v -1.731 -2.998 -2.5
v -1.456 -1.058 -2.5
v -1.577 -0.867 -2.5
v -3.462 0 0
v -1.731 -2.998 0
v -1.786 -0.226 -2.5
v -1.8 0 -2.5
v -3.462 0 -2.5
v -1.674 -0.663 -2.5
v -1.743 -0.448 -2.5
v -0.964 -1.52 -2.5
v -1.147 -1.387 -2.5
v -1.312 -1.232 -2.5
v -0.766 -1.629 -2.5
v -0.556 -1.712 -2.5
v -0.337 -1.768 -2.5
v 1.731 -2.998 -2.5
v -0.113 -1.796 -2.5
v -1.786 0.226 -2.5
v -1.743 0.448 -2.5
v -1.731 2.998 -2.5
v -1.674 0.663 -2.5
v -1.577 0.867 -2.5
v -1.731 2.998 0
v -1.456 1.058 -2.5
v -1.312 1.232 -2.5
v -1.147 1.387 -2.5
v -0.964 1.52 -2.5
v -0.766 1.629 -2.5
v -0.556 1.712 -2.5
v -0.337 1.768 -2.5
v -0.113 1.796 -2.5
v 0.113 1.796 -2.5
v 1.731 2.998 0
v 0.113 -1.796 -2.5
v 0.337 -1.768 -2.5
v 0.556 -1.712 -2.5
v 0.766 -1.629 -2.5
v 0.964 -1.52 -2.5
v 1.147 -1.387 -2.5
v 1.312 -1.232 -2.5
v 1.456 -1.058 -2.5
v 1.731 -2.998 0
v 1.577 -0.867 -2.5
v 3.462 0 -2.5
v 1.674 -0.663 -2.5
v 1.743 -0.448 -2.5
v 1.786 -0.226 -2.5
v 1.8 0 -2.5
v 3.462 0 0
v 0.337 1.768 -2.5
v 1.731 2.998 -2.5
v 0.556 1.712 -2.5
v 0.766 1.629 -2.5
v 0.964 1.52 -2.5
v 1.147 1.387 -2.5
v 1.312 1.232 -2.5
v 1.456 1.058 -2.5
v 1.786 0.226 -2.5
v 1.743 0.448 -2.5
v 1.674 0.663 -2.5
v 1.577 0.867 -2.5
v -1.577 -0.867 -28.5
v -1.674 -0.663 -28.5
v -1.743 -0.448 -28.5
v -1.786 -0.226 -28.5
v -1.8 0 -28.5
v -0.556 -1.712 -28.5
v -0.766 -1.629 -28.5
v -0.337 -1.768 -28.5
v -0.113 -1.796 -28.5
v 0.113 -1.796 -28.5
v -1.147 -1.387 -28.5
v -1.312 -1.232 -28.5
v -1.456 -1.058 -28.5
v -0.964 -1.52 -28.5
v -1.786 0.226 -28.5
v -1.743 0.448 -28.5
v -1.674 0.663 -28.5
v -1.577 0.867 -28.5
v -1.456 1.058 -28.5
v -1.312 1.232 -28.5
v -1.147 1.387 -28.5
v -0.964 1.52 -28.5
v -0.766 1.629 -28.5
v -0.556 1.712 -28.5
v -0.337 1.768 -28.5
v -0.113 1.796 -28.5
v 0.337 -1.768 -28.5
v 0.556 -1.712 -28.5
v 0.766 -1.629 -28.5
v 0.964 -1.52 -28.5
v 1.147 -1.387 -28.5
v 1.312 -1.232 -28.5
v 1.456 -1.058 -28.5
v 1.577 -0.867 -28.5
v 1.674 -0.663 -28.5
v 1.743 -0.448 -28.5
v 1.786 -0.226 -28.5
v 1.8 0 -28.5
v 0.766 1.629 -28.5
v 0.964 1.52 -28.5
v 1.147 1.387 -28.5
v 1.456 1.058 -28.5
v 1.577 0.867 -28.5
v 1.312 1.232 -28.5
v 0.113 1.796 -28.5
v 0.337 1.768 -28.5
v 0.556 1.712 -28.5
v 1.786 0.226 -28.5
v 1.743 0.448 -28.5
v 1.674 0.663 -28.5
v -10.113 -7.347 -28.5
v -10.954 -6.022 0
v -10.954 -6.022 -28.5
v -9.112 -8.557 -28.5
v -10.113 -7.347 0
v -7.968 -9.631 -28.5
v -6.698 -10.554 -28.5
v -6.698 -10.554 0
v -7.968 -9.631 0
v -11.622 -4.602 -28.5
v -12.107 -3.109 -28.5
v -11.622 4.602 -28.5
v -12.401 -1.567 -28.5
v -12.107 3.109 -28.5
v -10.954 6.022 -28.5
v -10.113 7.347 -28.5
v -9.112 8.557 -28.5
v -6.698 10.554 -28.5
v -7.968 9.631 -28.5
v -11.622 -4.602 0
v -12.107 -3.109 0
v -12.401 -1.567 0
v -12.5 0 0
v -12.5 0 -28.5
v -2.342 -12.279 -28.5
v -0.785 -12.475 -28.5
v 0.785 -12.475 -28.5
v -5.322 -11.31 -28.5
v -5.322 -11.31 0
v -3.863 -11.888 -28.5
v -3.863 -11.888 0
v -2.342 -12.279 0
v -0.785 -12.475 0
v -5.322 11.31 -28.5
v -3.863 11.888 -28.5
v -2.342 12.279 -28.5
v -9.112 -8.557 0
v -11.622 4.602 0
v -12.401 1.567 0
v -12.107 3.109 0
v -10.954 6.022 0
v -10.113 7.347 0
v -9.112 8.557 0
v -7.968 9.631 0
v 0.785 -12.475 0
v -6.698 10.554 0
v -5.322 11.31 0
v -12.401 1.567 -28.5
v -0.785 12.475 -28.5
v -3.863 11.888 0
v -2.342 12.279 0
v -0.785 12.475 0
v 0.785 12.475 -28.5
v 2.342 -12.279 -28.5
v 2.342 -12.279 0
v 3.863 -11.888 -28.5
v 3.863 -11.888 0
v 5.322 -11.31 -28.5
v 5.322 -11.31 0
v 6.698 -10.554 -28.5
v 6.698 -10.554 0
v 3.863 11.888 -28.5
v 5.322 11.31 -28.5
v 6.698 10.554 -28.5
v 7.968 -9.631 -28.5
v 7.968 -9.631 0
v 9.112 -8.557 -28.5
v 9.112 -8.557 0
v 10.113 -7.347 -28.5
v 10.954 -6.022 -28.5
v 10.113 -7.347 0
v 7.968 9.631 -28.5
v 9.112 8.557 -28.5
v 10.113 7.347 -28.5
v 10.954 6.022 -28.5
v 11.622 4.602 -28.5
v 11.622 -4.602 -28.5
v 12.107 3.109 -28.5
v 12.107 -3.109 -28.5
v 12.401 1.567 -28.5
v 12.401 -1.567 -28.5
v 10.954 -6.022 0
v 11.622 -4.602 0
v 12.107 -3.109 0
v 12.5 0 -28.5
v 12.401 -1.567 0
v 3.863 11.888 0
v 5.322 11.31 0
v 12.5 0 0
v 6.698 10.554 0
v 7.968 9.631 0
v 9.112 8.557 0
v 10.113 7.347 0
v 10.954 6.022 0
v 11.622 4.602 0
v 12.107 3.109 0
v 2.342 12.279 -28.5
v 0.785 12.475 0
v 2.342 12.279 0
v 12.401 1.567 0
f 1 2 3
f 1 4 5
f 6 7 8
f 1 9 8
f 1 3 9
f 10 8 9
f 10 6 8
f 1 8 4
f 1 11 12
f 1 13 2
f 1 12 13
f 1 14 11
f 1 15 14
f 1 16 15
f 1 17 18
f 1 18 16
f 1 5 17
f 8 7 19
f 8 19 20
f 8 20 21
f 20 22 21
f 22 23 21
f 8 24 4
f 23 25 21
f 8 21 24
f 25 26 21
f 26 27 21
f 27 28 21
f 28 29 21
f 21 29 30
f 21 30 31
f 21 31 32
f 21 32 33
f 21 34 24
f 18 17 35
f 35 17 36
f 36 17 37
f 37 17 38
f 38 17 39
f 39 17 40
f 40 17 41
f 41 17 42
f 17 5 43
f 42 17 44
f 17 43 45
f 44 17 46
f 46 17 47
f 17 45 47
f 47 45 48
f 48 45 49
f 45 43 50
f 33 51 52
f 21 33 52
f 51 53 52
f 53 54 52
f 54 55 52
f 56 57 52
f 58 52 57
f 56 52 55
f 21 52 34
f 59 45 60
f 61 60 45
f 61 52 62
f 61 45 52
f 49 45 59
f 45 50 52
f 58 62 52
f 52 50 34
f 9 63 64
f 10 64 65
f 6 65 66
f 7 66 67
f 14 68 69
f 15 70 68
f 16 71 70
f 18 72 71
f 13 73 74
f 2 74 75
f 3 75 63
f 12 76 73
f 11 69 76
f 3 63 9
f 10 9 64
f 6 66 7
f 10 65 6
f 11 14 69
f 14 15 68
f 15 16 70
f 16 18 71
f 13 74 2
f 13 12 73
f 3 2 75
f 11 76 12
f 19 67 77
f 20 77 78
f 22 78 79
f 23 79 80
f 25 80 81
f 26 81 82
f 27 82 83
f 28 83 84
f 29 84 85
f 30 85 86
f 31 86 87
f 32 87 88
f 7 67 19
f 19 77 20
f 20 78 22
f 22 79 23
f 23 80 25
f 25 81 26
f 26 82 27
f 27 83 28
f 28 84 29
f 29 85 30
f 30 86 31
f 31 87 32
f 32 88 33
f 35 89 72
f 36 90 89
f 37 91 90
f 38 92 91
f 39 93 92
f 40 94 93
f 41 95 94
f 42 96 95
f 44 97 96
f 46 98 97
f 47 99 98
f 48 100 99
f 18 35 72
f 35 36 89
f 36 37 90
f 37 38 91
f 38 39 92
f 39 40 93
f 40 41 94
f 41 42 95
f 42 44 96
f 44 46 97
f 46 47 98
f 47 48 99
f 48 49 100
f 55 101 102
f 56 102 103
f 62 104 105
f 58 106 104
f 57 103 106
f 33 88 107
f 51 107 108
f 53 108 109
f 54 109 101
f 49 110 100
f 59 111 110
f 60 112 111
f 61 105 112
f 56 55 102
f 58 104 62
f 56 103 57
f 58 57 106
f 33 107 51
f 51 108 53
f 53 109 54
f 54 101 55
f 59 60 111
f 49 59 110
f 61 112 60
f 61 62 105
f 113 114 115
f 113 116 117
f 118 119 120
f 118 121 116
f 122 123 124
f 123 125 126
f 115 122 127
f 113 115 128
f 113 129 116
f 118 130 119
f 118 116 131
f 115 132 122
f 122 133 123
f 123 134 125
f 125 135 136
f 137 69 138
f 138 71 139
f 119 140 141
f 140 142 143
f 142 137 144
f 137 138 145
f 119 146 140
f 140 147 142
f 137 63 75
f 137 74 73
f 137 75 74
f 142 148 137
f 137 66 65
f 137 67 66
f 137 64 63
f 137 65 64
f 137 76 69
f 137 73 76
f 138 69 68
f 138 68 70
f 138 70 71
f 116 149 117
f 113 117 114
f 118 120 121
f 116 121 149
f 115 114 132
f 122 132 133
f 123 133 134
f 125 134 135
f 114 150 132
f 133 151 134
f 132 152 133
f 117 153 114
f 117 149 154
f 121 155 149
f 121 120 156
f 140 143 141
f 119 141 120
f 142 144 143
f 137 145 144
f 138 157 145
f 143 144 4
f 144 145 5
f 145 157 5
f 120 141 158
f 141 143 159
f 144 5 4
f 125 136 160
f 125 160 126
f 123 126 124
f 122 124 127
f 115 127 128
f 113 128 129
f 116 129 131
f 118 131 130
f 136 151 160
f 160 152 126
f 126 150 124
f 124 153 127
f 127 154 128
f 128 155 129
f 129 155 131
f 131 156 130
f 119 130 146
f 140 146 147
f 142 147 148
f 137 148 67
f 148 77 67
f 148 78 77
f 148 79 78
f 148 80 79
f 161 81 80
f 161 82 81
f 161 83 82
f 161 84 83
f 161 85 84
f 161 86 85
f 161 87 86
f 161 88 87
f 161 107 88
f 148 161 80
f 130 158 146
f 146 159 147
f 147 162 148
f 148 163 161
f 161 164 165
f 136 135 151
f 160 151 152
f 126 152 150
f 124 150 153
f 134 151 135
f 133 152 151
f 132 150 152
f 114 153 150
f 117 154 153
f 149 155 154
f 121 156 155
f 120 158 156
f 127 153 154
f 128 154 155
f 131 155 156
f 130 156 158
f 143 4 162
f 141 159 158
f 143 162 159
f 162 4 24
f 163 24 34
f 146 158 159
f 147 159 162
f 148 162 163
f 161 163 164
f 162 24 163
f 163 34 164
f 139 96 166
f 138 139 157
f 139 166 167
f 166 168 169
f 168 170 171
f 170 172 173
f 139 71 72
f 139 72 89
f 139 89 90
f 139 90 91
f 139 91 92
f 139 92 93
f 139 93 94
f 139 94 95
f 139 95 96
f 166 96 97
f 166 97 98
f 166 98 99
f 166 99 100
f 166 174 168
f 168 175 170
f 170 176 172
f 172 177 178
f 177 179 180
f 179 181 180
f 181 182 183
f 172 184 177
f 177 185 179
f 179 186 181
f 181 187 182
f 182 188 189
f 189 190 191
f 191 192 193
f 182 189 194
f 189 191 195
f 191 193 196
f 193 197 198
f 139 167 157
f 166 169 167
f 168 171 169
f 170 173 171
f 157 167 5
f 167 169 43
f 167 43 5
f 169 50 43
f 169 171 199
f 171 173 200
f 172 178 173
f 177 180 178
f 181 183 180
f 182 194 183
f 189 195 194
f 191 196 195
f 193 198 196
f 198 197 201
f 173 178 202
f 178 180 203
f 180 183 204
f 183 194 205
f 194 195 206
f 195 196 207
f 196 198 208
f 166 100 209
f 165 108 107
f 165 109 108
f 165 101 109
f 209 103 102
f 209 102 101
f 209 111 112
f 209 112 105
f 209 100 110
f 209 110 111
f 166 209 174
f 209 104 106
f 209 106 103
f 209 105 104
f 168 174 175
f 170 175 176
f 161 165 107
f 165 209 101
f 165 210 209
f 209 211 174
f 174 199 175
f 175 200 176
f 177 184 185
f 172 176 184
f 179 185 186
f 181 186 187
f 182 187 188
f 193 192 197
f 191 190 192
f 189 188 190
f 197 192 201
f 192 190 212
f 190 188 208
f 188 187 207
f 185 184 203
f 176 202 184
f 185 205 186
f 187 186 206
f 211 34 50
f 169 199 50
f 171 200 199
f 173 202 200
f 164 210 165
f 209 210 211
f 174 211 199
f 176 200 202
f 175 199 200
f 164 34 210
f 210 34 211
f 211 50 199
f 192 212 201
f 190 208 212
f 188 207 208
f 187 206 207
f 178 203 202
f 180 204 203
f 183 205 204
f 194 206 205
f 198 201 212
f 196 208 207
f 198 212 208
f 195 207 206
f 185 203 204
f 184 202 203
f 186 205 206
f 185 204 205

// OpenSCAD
$fn = 50;


difference() {
	union() {
		translate(v = [0, 0, -28.5000000000]) {
			cylinder(h = 28.5000000000, r = 12.5000000000);
		}
	}
	union() {
		translate(v = [0, 0, 0]) {
			rotate(a = [0, 0, 0]) {
				difference() {
					union() {
						translate(v = [0, 0, -2.5000000000]) {
							linear_extrude(height = 2.5000000000) {
								polygon(points = [[3.4620000000, 0.0000000000], [1.7310000000, 2.9981799479], [-1.7310000000, 2.9981799479], [-3.4620000000, 0.0000000000], [-1.7310000000, -2.9981799479], [1.7310000000, -2.9981799479]]);
							}
						}
					}
					union();
				}
			}
		}
		#translate(v = [0, 0, -100.0000000000]) {
			cylinder(h = 200, r = 1.8000000000);
		}
	}
}
